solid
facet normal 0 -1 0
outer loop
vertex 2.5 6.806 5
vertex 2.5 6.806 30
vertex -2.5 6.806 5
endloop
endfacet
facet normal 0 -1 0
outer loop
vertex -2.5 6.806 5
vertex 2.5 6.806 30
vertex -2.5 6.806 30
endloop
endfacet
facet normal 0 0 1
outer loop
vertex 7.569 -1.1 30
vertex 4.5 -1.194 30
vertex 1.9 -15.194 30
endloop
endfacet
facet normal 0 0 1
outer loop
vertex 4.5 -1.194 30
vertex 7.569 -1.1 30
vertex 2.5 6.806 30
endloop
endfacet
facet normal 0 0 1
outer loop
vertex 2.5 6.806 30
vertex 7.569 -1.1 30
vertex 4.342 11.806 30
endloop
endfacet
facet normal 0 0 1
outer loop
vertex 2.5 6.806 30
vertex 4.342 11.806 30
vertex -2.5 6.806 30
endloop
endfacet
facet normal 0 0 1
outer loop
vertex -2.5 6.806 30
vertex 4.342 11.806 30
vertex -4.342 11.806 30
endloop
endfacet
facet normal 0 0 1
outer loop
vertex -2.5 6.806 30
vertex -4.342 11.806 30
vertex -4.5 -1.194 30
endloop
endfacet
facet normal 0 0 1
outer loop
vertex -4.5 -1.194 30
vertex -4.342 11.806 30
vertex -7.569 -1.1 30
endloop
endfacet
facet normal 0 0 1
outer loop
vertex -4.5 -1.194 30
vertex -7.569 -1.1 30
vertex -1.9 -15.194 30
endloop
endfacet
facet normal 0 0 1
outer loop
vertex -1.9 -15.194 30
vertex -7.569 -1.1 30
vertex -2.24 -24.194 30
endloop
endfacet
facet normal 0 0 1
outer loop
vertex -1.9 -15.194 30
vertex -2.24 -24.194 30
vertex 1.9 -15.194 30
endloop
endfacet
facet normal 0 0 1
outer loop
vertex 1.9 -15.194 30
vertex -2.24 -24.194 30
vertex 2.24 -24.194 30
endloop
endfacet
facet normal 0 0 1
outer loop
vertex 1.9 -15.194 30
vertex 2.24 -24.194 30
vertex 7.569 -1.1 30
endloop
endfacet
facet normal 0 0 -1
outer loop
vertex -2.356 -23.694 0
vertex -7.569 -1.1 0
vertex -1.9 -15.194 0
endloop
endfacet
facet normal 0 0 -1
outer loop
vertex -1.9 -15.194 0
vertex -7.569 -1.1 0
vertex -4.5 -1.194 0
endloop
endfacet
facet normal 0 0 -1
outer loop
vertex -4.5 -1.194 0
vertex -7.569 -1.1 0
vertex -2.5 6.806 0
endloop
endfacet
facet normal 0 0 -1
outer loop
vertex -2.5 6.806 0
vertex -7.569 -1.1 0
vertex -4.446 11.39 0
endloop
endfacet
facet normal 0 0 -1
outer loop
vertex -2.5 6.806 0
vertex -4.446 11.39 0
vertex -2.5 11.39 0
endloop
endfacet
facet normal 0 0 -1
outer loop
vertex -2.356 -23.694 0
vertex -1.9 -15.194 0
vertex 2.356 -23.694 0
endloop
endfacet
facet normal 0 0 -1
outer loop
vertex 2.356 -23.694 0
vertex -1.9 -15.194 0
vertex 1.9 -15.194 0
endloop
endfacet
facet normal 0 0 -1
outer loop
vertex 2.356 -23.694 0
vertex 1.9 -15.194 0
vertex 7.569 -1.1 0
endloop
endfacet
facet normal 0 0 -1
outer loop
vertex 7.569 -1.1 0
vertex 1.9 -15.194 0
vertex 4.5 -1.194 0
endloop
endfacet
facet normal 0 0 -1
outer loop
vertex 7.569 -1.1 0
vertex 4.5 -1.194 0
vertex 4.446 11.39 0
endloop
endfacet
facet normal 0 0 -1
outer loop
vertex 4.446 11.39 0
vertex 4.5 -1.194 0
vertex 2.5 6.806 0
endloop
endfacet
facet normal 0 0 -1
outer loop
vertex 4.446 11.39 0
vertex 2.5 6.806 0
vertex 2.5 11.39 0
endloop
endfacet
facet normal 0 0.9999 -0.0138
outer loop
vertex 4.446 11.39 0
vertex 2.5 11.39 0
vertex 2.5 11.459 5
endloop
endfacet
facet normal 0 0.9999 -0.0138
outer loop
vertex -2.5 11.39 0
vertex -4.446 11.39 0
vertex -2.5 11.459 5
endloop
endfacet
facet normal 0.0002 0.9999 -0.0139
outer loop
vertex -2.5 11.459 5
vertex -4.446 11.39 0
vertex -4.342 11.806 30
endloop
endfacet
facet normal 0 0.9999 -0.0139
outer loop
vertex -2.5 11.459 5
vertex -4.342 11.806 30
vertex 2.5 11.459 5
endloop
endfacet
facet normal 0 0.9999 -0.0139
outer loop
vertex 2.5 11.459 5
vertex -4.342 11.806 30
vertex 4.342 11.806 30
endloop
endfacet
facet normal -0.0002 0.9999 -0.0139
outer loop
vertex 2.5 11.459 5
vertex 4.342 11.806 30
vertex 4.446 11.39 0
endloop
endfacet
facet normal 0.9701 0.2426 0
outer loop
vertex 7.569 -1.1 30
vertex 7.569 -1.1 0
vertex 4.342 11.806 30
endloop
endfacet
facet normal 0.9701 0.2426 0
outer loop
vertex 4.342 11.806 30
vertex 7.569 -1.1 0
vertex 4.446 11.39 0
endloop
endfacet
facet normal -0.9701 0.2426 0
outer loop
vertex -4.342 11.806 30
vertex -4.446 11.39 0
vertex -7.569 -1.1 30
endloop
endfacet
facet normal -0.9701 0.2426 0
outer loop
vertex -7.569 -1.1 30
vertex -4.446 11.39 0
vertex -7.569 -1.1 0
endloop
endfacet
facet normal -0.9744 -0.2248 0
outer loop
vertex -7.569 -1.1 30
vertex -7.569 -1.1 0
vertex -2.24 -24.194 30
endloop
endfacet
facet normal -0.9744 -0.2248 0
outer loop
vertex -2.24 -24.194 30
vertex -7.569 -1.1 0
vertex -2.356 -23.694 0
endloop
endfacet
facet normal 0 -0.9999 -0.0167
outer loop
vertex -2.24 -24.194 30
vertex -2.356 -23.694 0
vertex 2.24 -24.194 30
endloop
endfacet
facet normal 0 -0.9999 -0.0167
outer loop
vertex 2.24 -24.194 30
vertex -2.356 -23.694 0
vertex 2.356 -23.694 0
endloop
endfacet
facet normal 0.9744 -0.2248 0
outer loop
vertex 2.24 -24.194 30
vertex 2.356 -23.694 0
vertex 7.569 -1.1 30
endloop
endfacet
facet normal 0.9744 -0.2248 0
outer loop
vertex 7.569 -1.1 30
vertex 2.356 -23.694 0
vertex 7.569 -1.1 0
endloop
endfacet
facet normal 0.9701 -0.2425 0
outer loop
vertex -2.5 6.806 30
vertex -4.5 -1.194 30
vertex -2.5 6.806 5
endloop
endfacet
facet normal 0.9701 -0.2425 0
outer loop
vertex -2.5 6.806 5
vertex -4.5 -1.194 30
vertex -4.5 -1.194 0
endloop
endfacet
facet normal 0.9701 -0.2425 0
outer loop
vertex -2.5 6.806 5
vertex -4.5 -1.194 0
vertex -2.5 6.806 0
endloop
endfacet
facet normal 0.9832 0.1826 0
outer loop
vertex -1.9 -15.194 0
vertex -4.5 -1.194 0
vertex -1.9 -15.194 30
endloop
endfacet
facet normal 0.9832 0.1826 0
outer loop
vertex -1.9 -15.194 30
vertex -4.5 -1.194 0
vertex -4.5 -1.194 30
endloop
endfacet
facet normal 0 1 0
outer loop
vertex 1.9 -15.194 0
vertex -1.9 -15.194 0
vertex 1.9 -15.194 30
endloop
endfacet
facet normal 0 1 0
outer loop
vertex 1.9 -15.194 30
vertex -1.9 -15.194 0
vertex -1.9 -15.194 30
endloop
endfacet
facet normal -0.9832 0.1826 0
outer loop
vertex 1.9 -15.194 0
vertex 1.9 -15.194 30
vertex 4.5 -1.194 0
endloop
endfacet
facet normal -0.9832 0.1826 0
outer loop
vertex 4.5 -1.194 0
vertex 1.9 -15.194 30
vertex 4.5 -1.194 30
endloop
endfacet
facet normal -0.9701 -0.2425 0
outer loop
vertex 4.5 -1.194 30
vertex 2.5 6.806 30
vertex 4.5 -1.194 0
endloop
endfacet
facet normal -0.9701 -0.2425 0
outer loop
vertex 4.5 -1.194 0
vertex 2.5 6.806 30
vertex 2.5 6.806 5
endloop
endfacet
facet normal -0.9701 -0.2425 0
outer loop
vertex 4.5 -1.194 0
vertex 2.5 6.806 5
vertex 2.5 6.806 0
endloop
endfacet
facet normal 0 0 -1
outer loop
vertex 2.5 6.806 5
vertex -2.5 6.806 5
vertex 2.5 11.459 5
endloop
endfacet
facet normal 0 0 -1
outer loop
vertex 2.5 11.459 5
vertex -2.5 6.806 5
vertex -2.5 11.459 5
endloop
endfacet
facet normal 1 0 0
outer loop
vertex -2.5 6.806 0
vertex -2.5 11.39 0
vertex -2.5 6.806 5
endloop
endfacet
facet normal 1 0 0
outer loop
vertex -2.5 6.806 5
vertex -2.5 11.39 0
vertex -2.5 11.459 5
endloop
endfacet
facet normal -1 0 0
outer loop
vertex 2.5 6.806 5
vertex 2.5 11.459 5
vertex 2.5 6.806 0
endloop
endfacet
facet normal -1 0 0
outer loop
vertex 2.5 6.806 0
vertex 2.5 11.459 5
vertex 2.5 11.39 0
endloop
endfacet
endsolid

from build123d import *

# Parameters (mm, degrees)
CUT_EXTRUDE_1_DEPTH = 40.276397034
SKETCH_5_W          = 5
SKETCH_5_H          = 6.5
CUT_EXTRUDE_2_DEPTH = 5


with BuildPart() as part:
    # 스케치3 → 로프트1 section 0
    with BuildSketch(Plane.XY):
        with BuildLine():
            Line((-4.446445939, 11.389549668), (4.446445939, 11.389549668))
            Line((4.446445939, 11.389549668), (7.568785652, -1.099809185))
            Line((7.568785652, -1.099809185), (2.355626001, -23.693983454))
            Line((2.355626001, -23.693983454), (-2.355626001, -23.693983454))
            Line((-2.355626001, -23.693983454), (-7.568785652, -1.099809185))
            Line((-7.568785652, -1.099809185), (-4.446445939, 11.389549668))
        make_face()
    # 스케치4 → 로프트1 section 1
    with BuildSketch(Plane.XY.offset(30)):
        with BuildLine():
            Line((-4.342329219, 11.806016546), (4.342329219, 11.806016546))
            Line((4.342329219, 11.806016546), (7.568785652, -1.099809185))
            Line((7.568785652, -1.099809185), (2.240260872, -24.193983454))
            Line((2.240260872, -24.193983454), (-2.240260872, -24.193983454))
            Line((-2.240260872, -24.193983454), (-7.568785652, -1.099809185))
            Line((-7.568785652, -1.099809185), (-4.342329219, 11.806016546))
        make_face()
    loft()

    # 스케치1 → 컷-돌출1 (cut, through all)
    with BuildSketch(Plane.XY):
        Polygon((2.5, 6.806016546), (-2.5, 6.806016546), (-4.5, -1.193983454), (-1.9, -15.193983454), (1.9, -15.193983454), (4.5, -1.193983454), align=None)
    extrude(amount=CUT_EXTRUDE_1_DEPTH, mode=Mode.SUBTRACT)

    # 스케치5 → 컷-돌출2 (cut)
    with BuildSketch(Plane(origin=(0, 0, 0), x_dir=(-1, 0, 0), z_dir=(0, 0, -1))):
        with Locations((0, 10.056016546)):
            Rectangle(SKETCH_5_W, SKETCH_5_H)
    extrude(amount=-CUT_EXTRUDE_2_DEPTH, mode=Mode.SUBTRACT)


solid = part.part
